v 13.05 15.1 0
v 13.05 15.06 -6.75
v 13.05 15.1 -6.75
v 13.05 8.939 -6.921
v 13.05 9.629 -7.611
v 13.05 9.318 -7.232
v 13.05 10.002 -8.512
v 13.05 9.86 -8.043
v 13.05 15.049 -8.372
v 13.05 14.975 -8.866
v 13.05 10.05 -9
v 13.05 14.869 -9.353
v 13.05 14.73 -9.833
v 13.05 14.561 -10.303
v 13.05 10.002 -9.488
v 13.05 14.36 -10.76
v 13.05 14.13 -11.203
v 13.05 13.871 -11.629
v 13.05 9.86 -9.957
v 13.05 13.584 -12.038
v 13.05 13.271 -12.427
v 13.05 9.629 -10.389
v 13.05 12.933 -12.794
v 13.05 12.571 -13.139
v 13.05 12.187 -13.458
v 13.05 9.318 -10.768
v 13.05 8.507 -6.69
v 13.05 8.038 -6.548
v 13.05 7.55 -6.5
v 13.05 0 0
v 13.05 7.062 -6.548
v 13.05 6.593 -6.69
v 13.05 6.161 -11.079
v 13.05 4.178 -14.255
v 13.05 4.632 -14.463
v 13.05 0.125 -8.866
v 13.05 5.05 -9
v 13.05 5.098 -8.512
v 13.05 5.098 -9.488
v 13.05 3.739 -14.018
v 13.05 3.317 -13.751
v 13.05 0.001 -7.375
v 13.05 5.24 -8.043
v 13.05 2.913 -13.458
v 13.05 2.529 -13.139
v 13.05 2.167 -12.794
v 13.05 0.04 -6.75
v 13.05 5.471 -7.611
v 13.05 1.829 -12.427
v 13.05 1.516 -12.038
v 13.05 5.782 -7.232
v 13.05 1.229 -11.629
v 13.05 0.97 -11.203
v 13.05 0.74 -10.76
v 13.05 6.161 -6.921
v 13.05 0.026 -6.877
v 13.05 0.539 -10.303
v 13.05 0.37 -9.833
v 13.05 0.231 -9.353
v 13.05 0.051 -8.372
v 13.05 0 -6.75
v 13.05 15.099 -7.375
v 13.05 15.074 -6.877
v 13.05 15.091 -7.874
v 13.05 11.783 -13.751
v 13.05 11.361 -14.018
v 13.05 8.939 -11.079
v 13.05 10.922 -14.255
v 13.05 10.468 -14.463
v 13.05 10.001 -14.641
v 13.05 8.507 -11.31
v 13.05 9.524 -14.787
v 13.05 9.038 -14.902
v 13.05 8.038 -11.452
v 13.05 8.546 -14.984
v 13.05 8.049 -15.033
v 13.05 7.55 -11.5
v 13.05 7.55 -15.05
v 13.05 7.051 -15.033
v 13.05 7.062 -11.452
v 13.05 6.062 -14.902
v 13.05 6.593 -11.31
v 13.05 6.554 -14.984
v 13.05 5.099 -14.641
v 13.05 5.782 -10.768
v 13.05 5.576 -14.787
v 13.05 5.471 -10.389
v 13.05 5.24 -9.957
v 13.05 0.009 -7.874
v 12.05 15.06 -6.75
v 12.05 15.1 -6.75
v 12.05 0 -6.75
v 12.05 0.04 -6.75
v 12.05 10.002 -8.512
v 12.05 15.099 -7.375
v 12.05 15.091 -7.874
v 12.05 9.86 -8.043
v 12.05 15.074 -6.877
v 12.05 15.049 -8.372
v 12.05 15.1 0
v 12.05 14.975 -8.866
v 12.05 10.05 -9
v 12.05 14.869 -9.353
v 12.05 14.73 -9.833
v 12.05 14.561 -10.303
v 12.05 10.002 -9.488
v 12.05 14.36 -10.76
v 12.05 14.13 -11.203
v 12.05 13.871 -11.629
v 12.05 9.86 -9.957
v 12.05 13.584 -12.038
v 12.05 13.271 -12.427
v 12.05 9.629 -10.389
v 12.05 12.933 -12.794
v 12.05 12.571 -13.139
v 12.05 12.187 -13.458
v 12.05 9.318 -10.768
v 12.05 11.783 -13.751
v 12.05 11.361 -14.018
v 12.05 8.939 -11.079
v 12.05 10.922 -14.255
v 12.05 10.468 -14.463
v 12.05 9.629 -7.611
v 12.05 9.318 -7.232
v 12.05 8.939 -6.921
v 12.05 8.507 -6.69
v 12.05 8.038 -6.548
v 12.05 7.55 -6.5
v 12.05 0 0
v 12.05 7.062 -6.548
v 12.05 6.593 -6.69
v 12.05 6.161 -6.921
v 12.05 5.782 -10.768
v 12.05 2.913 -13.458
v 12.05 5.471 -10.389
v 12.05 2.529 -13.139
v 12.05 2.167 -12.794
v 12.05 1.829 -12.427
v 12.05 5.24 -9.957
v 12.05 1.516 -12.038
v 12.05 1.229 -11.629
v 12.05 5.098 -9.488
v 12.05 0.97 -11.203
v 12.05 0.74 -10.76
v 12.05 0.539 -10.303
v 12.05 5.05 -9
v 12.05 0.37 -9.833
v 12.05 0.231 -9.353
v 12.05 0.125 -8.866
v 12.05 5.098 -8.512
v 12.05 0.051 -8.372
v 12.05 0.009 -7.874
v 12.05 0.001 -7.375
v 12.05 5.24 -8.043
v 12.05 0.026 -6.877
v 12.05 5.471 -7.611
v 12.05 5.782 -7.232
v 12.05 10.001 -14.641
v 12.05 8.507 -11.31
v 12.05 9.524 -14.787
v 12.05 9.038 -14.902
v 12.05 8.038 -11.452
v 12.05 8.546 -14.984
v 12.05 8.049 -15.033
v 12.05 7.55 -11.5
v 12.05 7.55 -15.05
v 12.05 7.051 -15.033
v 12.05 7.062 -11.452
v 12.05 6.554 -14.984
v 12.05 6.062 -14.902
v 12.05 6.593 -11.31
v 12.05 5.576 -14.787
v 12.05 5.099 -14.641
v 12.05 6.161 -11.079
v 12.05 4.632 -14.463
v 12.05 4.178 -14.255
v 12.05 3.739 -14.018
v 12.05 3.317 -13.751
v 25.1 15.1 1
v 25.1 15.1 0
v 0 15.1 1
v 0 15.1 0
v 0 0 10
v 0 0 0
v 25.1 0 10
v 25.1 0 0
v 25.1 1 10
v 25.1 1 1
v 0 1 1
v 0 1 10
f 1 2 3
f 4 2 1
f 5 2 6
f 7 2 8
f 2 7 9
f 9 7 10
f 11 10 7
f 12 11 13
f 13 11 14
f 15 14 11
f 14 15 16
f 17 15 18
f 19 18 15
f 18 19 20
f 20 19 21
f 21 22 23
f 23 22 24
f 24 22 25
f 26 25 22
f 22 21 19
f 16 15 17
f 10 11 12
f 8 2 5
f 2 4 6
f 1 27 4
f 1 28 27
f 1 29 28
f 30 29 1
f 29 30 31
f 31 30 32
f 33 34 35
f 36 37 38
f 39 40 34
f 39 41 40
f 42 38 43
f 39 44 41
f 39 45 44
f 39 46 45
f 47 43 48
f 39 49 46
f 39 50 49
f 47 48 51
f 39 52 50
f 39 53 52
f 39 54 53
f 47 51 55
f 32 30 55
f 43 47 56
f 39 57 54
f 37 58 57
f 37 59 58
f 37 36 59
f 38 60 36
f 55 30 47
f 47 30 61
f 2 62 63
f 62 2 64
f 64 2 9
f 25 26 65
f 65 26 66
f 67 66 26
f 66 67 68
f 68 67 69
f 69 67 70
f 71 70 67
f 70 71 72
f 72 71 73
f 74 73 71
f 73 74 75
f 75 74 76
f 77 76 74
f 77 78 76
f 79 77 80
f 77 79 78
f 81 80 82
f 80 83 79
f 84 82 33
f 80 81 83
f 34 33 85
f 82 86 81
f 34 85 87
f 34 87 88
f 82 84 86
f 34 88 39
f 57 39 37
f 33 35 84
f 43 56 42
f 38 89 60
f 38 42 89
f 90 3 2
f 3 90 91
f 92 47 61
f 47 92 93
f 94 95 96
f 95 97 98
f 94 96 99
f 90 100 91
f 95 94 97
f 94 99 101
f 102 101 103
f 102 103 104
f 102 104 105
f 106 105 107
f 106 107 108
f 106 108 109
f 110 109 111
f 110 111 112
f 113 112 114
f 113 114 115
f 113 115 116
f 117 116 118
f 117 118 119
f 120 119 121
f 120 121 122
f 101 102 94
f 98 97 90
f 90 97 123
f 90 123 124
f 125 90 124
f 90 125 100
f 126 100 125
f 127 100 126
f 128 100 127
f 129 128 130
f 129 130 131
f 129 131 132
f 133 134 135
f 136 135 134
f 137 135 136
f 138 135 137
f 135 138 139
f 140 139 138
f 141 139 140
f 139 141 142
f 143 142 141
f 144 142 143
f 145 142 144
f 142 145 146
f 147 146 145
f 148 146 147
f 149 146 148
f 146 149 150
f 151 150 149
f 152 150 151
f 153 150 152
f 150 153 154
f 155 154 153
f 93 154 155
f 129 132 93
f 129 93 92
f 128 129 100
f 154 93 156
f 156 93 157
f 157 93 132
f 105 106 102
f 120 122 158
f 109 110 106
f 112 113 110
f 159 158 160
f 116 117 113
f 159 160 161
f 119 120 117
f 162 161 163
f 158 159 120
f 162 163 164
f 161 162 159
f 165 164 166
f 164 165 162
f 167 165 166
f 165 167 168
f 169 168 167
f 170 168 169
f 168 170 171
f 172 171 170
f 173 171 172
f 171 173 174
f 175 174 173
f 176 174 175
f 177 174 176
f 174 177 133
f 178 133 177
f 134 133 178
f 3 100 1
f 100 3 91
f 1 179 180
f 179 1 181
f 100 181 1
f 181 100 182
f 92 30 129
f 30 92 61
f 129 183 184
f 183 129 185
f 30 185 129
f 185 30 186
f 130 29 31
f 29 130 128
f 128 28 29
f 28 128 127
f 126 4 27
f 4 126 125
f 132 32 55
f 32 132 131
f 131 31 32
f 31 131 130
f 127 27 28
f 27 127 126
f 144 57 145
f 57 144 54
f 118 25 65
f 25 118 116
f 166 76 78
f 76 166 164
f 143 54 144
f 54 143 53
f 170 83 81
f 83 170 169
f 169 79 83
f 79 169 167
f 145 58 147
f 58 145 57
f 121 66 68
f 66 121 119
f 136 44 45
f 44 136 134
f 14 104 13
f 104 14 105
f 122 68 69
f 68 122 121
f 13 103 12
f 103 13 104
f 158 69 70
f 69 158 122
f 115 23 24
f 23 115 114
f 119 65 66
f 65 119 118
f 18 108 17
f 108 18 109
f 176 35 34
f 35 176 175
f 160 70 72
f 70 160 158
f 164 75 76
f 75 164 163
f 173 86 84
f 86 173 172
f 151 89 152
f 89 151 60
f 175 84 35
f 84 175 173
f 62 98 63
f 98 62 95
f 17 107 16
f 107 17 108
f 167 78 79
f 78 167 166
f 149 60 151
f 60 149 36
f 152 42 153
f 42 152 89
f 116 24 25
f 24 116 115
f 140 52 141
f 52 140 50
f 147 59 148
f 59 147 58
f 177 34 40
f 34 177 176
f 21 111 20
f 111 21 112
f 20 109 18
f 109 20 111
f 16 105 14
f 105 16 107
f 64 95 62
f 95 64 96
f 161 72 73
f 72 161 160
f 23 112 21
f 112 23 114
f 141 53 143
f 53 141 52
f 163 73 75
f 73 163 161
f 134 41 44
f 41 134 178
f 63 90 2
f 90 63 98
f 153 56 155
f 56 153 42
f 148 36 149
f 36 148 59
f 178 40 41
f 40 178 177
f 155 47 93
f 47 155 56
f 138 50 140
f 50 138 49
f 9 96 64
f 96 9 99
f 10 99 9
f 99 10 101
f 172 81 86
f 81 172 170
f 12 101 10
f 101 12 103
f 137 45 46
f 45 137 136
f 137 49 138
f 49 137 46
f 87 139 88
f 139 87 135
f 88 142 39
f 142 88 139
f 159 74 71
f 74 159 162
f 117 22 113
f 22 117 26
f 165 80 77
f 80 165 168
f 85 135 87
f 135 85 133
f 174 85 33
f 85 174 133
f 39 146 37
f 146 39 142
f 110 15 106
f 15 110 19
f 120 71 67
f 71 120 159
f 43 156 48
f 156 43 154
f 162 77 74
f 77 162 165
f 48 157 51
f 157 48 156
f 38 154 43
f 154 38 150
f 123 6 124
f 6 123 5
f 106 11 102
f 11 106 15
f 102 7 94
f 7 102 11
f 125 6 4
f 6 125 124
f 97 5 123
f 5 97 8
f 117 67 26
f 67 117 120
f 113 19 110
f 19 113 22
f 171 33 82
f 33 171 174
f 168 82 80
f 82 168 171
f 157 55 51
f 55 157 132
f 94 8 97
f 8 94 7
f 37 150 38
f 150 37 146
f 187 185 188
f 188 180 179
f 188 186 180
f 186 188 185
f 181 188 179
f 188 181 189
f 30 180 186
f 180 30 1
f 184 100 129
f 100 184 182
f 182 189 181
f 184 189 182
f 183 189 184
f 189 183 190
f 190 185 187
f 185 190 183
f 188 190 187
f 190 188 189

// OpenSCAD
//精度
$fs=0.5;
$fa=0.5;

// 长22.6mm  宽12.4 高15.5，线宽3.5mm
//孔 5mm
space=0.5;
sgLength=22.6 + space;
sgWidth=12.6 + space;
sgHeight=15.5 + space;
lineWidth=3.5;
board=1;
cube([sgLength + board *2, sgWidth + board * 2, 1]);
cube([sgLength + board *2, 1, 10]);


bracketSpace=2;//支撑间隔
bracketHeight=15;//支撑高度
bracketWidth=sgWidth + board * 2;//支撑宽度
bracketHole=5/2;//孔半径
holeHeight=6;//孔到盒子距离
transX=(sgLength)/2 + board;
holeBoard=1;
translate([transX + 0, 0, -bracketHeight]) {
    difference() {
        translate([0, sgWidth/2 + board, 12]) {
            cube([holeBoard, bracketWidth, bracketHeight/2], center=true);
        }
        translate([0, sgWidth/2 + board, holeHeight]) rotate([0, 90, 0]) {
            cylinder(h=10, r1= bracketHole, r2= bracketHole, center=true, cy= 1);
        }
    }
    difference() {
        translate([0, sgWidth/2 + board, bracketHeight/2]) rotate([0, 90, 0]) {
            cylinder(h=holeBoard, r1= bracketWidth/2, r2= bracketWidth/2, center=true, cy= 1);
        }
        translate([0, sgWidth/2 + board, holeHeight]) rotate([0, 90, 0]) {
            cylinder(h=10, r1= bracketHole, r2= bracketHole, center=true, cy= 1);
        }
    }
}
